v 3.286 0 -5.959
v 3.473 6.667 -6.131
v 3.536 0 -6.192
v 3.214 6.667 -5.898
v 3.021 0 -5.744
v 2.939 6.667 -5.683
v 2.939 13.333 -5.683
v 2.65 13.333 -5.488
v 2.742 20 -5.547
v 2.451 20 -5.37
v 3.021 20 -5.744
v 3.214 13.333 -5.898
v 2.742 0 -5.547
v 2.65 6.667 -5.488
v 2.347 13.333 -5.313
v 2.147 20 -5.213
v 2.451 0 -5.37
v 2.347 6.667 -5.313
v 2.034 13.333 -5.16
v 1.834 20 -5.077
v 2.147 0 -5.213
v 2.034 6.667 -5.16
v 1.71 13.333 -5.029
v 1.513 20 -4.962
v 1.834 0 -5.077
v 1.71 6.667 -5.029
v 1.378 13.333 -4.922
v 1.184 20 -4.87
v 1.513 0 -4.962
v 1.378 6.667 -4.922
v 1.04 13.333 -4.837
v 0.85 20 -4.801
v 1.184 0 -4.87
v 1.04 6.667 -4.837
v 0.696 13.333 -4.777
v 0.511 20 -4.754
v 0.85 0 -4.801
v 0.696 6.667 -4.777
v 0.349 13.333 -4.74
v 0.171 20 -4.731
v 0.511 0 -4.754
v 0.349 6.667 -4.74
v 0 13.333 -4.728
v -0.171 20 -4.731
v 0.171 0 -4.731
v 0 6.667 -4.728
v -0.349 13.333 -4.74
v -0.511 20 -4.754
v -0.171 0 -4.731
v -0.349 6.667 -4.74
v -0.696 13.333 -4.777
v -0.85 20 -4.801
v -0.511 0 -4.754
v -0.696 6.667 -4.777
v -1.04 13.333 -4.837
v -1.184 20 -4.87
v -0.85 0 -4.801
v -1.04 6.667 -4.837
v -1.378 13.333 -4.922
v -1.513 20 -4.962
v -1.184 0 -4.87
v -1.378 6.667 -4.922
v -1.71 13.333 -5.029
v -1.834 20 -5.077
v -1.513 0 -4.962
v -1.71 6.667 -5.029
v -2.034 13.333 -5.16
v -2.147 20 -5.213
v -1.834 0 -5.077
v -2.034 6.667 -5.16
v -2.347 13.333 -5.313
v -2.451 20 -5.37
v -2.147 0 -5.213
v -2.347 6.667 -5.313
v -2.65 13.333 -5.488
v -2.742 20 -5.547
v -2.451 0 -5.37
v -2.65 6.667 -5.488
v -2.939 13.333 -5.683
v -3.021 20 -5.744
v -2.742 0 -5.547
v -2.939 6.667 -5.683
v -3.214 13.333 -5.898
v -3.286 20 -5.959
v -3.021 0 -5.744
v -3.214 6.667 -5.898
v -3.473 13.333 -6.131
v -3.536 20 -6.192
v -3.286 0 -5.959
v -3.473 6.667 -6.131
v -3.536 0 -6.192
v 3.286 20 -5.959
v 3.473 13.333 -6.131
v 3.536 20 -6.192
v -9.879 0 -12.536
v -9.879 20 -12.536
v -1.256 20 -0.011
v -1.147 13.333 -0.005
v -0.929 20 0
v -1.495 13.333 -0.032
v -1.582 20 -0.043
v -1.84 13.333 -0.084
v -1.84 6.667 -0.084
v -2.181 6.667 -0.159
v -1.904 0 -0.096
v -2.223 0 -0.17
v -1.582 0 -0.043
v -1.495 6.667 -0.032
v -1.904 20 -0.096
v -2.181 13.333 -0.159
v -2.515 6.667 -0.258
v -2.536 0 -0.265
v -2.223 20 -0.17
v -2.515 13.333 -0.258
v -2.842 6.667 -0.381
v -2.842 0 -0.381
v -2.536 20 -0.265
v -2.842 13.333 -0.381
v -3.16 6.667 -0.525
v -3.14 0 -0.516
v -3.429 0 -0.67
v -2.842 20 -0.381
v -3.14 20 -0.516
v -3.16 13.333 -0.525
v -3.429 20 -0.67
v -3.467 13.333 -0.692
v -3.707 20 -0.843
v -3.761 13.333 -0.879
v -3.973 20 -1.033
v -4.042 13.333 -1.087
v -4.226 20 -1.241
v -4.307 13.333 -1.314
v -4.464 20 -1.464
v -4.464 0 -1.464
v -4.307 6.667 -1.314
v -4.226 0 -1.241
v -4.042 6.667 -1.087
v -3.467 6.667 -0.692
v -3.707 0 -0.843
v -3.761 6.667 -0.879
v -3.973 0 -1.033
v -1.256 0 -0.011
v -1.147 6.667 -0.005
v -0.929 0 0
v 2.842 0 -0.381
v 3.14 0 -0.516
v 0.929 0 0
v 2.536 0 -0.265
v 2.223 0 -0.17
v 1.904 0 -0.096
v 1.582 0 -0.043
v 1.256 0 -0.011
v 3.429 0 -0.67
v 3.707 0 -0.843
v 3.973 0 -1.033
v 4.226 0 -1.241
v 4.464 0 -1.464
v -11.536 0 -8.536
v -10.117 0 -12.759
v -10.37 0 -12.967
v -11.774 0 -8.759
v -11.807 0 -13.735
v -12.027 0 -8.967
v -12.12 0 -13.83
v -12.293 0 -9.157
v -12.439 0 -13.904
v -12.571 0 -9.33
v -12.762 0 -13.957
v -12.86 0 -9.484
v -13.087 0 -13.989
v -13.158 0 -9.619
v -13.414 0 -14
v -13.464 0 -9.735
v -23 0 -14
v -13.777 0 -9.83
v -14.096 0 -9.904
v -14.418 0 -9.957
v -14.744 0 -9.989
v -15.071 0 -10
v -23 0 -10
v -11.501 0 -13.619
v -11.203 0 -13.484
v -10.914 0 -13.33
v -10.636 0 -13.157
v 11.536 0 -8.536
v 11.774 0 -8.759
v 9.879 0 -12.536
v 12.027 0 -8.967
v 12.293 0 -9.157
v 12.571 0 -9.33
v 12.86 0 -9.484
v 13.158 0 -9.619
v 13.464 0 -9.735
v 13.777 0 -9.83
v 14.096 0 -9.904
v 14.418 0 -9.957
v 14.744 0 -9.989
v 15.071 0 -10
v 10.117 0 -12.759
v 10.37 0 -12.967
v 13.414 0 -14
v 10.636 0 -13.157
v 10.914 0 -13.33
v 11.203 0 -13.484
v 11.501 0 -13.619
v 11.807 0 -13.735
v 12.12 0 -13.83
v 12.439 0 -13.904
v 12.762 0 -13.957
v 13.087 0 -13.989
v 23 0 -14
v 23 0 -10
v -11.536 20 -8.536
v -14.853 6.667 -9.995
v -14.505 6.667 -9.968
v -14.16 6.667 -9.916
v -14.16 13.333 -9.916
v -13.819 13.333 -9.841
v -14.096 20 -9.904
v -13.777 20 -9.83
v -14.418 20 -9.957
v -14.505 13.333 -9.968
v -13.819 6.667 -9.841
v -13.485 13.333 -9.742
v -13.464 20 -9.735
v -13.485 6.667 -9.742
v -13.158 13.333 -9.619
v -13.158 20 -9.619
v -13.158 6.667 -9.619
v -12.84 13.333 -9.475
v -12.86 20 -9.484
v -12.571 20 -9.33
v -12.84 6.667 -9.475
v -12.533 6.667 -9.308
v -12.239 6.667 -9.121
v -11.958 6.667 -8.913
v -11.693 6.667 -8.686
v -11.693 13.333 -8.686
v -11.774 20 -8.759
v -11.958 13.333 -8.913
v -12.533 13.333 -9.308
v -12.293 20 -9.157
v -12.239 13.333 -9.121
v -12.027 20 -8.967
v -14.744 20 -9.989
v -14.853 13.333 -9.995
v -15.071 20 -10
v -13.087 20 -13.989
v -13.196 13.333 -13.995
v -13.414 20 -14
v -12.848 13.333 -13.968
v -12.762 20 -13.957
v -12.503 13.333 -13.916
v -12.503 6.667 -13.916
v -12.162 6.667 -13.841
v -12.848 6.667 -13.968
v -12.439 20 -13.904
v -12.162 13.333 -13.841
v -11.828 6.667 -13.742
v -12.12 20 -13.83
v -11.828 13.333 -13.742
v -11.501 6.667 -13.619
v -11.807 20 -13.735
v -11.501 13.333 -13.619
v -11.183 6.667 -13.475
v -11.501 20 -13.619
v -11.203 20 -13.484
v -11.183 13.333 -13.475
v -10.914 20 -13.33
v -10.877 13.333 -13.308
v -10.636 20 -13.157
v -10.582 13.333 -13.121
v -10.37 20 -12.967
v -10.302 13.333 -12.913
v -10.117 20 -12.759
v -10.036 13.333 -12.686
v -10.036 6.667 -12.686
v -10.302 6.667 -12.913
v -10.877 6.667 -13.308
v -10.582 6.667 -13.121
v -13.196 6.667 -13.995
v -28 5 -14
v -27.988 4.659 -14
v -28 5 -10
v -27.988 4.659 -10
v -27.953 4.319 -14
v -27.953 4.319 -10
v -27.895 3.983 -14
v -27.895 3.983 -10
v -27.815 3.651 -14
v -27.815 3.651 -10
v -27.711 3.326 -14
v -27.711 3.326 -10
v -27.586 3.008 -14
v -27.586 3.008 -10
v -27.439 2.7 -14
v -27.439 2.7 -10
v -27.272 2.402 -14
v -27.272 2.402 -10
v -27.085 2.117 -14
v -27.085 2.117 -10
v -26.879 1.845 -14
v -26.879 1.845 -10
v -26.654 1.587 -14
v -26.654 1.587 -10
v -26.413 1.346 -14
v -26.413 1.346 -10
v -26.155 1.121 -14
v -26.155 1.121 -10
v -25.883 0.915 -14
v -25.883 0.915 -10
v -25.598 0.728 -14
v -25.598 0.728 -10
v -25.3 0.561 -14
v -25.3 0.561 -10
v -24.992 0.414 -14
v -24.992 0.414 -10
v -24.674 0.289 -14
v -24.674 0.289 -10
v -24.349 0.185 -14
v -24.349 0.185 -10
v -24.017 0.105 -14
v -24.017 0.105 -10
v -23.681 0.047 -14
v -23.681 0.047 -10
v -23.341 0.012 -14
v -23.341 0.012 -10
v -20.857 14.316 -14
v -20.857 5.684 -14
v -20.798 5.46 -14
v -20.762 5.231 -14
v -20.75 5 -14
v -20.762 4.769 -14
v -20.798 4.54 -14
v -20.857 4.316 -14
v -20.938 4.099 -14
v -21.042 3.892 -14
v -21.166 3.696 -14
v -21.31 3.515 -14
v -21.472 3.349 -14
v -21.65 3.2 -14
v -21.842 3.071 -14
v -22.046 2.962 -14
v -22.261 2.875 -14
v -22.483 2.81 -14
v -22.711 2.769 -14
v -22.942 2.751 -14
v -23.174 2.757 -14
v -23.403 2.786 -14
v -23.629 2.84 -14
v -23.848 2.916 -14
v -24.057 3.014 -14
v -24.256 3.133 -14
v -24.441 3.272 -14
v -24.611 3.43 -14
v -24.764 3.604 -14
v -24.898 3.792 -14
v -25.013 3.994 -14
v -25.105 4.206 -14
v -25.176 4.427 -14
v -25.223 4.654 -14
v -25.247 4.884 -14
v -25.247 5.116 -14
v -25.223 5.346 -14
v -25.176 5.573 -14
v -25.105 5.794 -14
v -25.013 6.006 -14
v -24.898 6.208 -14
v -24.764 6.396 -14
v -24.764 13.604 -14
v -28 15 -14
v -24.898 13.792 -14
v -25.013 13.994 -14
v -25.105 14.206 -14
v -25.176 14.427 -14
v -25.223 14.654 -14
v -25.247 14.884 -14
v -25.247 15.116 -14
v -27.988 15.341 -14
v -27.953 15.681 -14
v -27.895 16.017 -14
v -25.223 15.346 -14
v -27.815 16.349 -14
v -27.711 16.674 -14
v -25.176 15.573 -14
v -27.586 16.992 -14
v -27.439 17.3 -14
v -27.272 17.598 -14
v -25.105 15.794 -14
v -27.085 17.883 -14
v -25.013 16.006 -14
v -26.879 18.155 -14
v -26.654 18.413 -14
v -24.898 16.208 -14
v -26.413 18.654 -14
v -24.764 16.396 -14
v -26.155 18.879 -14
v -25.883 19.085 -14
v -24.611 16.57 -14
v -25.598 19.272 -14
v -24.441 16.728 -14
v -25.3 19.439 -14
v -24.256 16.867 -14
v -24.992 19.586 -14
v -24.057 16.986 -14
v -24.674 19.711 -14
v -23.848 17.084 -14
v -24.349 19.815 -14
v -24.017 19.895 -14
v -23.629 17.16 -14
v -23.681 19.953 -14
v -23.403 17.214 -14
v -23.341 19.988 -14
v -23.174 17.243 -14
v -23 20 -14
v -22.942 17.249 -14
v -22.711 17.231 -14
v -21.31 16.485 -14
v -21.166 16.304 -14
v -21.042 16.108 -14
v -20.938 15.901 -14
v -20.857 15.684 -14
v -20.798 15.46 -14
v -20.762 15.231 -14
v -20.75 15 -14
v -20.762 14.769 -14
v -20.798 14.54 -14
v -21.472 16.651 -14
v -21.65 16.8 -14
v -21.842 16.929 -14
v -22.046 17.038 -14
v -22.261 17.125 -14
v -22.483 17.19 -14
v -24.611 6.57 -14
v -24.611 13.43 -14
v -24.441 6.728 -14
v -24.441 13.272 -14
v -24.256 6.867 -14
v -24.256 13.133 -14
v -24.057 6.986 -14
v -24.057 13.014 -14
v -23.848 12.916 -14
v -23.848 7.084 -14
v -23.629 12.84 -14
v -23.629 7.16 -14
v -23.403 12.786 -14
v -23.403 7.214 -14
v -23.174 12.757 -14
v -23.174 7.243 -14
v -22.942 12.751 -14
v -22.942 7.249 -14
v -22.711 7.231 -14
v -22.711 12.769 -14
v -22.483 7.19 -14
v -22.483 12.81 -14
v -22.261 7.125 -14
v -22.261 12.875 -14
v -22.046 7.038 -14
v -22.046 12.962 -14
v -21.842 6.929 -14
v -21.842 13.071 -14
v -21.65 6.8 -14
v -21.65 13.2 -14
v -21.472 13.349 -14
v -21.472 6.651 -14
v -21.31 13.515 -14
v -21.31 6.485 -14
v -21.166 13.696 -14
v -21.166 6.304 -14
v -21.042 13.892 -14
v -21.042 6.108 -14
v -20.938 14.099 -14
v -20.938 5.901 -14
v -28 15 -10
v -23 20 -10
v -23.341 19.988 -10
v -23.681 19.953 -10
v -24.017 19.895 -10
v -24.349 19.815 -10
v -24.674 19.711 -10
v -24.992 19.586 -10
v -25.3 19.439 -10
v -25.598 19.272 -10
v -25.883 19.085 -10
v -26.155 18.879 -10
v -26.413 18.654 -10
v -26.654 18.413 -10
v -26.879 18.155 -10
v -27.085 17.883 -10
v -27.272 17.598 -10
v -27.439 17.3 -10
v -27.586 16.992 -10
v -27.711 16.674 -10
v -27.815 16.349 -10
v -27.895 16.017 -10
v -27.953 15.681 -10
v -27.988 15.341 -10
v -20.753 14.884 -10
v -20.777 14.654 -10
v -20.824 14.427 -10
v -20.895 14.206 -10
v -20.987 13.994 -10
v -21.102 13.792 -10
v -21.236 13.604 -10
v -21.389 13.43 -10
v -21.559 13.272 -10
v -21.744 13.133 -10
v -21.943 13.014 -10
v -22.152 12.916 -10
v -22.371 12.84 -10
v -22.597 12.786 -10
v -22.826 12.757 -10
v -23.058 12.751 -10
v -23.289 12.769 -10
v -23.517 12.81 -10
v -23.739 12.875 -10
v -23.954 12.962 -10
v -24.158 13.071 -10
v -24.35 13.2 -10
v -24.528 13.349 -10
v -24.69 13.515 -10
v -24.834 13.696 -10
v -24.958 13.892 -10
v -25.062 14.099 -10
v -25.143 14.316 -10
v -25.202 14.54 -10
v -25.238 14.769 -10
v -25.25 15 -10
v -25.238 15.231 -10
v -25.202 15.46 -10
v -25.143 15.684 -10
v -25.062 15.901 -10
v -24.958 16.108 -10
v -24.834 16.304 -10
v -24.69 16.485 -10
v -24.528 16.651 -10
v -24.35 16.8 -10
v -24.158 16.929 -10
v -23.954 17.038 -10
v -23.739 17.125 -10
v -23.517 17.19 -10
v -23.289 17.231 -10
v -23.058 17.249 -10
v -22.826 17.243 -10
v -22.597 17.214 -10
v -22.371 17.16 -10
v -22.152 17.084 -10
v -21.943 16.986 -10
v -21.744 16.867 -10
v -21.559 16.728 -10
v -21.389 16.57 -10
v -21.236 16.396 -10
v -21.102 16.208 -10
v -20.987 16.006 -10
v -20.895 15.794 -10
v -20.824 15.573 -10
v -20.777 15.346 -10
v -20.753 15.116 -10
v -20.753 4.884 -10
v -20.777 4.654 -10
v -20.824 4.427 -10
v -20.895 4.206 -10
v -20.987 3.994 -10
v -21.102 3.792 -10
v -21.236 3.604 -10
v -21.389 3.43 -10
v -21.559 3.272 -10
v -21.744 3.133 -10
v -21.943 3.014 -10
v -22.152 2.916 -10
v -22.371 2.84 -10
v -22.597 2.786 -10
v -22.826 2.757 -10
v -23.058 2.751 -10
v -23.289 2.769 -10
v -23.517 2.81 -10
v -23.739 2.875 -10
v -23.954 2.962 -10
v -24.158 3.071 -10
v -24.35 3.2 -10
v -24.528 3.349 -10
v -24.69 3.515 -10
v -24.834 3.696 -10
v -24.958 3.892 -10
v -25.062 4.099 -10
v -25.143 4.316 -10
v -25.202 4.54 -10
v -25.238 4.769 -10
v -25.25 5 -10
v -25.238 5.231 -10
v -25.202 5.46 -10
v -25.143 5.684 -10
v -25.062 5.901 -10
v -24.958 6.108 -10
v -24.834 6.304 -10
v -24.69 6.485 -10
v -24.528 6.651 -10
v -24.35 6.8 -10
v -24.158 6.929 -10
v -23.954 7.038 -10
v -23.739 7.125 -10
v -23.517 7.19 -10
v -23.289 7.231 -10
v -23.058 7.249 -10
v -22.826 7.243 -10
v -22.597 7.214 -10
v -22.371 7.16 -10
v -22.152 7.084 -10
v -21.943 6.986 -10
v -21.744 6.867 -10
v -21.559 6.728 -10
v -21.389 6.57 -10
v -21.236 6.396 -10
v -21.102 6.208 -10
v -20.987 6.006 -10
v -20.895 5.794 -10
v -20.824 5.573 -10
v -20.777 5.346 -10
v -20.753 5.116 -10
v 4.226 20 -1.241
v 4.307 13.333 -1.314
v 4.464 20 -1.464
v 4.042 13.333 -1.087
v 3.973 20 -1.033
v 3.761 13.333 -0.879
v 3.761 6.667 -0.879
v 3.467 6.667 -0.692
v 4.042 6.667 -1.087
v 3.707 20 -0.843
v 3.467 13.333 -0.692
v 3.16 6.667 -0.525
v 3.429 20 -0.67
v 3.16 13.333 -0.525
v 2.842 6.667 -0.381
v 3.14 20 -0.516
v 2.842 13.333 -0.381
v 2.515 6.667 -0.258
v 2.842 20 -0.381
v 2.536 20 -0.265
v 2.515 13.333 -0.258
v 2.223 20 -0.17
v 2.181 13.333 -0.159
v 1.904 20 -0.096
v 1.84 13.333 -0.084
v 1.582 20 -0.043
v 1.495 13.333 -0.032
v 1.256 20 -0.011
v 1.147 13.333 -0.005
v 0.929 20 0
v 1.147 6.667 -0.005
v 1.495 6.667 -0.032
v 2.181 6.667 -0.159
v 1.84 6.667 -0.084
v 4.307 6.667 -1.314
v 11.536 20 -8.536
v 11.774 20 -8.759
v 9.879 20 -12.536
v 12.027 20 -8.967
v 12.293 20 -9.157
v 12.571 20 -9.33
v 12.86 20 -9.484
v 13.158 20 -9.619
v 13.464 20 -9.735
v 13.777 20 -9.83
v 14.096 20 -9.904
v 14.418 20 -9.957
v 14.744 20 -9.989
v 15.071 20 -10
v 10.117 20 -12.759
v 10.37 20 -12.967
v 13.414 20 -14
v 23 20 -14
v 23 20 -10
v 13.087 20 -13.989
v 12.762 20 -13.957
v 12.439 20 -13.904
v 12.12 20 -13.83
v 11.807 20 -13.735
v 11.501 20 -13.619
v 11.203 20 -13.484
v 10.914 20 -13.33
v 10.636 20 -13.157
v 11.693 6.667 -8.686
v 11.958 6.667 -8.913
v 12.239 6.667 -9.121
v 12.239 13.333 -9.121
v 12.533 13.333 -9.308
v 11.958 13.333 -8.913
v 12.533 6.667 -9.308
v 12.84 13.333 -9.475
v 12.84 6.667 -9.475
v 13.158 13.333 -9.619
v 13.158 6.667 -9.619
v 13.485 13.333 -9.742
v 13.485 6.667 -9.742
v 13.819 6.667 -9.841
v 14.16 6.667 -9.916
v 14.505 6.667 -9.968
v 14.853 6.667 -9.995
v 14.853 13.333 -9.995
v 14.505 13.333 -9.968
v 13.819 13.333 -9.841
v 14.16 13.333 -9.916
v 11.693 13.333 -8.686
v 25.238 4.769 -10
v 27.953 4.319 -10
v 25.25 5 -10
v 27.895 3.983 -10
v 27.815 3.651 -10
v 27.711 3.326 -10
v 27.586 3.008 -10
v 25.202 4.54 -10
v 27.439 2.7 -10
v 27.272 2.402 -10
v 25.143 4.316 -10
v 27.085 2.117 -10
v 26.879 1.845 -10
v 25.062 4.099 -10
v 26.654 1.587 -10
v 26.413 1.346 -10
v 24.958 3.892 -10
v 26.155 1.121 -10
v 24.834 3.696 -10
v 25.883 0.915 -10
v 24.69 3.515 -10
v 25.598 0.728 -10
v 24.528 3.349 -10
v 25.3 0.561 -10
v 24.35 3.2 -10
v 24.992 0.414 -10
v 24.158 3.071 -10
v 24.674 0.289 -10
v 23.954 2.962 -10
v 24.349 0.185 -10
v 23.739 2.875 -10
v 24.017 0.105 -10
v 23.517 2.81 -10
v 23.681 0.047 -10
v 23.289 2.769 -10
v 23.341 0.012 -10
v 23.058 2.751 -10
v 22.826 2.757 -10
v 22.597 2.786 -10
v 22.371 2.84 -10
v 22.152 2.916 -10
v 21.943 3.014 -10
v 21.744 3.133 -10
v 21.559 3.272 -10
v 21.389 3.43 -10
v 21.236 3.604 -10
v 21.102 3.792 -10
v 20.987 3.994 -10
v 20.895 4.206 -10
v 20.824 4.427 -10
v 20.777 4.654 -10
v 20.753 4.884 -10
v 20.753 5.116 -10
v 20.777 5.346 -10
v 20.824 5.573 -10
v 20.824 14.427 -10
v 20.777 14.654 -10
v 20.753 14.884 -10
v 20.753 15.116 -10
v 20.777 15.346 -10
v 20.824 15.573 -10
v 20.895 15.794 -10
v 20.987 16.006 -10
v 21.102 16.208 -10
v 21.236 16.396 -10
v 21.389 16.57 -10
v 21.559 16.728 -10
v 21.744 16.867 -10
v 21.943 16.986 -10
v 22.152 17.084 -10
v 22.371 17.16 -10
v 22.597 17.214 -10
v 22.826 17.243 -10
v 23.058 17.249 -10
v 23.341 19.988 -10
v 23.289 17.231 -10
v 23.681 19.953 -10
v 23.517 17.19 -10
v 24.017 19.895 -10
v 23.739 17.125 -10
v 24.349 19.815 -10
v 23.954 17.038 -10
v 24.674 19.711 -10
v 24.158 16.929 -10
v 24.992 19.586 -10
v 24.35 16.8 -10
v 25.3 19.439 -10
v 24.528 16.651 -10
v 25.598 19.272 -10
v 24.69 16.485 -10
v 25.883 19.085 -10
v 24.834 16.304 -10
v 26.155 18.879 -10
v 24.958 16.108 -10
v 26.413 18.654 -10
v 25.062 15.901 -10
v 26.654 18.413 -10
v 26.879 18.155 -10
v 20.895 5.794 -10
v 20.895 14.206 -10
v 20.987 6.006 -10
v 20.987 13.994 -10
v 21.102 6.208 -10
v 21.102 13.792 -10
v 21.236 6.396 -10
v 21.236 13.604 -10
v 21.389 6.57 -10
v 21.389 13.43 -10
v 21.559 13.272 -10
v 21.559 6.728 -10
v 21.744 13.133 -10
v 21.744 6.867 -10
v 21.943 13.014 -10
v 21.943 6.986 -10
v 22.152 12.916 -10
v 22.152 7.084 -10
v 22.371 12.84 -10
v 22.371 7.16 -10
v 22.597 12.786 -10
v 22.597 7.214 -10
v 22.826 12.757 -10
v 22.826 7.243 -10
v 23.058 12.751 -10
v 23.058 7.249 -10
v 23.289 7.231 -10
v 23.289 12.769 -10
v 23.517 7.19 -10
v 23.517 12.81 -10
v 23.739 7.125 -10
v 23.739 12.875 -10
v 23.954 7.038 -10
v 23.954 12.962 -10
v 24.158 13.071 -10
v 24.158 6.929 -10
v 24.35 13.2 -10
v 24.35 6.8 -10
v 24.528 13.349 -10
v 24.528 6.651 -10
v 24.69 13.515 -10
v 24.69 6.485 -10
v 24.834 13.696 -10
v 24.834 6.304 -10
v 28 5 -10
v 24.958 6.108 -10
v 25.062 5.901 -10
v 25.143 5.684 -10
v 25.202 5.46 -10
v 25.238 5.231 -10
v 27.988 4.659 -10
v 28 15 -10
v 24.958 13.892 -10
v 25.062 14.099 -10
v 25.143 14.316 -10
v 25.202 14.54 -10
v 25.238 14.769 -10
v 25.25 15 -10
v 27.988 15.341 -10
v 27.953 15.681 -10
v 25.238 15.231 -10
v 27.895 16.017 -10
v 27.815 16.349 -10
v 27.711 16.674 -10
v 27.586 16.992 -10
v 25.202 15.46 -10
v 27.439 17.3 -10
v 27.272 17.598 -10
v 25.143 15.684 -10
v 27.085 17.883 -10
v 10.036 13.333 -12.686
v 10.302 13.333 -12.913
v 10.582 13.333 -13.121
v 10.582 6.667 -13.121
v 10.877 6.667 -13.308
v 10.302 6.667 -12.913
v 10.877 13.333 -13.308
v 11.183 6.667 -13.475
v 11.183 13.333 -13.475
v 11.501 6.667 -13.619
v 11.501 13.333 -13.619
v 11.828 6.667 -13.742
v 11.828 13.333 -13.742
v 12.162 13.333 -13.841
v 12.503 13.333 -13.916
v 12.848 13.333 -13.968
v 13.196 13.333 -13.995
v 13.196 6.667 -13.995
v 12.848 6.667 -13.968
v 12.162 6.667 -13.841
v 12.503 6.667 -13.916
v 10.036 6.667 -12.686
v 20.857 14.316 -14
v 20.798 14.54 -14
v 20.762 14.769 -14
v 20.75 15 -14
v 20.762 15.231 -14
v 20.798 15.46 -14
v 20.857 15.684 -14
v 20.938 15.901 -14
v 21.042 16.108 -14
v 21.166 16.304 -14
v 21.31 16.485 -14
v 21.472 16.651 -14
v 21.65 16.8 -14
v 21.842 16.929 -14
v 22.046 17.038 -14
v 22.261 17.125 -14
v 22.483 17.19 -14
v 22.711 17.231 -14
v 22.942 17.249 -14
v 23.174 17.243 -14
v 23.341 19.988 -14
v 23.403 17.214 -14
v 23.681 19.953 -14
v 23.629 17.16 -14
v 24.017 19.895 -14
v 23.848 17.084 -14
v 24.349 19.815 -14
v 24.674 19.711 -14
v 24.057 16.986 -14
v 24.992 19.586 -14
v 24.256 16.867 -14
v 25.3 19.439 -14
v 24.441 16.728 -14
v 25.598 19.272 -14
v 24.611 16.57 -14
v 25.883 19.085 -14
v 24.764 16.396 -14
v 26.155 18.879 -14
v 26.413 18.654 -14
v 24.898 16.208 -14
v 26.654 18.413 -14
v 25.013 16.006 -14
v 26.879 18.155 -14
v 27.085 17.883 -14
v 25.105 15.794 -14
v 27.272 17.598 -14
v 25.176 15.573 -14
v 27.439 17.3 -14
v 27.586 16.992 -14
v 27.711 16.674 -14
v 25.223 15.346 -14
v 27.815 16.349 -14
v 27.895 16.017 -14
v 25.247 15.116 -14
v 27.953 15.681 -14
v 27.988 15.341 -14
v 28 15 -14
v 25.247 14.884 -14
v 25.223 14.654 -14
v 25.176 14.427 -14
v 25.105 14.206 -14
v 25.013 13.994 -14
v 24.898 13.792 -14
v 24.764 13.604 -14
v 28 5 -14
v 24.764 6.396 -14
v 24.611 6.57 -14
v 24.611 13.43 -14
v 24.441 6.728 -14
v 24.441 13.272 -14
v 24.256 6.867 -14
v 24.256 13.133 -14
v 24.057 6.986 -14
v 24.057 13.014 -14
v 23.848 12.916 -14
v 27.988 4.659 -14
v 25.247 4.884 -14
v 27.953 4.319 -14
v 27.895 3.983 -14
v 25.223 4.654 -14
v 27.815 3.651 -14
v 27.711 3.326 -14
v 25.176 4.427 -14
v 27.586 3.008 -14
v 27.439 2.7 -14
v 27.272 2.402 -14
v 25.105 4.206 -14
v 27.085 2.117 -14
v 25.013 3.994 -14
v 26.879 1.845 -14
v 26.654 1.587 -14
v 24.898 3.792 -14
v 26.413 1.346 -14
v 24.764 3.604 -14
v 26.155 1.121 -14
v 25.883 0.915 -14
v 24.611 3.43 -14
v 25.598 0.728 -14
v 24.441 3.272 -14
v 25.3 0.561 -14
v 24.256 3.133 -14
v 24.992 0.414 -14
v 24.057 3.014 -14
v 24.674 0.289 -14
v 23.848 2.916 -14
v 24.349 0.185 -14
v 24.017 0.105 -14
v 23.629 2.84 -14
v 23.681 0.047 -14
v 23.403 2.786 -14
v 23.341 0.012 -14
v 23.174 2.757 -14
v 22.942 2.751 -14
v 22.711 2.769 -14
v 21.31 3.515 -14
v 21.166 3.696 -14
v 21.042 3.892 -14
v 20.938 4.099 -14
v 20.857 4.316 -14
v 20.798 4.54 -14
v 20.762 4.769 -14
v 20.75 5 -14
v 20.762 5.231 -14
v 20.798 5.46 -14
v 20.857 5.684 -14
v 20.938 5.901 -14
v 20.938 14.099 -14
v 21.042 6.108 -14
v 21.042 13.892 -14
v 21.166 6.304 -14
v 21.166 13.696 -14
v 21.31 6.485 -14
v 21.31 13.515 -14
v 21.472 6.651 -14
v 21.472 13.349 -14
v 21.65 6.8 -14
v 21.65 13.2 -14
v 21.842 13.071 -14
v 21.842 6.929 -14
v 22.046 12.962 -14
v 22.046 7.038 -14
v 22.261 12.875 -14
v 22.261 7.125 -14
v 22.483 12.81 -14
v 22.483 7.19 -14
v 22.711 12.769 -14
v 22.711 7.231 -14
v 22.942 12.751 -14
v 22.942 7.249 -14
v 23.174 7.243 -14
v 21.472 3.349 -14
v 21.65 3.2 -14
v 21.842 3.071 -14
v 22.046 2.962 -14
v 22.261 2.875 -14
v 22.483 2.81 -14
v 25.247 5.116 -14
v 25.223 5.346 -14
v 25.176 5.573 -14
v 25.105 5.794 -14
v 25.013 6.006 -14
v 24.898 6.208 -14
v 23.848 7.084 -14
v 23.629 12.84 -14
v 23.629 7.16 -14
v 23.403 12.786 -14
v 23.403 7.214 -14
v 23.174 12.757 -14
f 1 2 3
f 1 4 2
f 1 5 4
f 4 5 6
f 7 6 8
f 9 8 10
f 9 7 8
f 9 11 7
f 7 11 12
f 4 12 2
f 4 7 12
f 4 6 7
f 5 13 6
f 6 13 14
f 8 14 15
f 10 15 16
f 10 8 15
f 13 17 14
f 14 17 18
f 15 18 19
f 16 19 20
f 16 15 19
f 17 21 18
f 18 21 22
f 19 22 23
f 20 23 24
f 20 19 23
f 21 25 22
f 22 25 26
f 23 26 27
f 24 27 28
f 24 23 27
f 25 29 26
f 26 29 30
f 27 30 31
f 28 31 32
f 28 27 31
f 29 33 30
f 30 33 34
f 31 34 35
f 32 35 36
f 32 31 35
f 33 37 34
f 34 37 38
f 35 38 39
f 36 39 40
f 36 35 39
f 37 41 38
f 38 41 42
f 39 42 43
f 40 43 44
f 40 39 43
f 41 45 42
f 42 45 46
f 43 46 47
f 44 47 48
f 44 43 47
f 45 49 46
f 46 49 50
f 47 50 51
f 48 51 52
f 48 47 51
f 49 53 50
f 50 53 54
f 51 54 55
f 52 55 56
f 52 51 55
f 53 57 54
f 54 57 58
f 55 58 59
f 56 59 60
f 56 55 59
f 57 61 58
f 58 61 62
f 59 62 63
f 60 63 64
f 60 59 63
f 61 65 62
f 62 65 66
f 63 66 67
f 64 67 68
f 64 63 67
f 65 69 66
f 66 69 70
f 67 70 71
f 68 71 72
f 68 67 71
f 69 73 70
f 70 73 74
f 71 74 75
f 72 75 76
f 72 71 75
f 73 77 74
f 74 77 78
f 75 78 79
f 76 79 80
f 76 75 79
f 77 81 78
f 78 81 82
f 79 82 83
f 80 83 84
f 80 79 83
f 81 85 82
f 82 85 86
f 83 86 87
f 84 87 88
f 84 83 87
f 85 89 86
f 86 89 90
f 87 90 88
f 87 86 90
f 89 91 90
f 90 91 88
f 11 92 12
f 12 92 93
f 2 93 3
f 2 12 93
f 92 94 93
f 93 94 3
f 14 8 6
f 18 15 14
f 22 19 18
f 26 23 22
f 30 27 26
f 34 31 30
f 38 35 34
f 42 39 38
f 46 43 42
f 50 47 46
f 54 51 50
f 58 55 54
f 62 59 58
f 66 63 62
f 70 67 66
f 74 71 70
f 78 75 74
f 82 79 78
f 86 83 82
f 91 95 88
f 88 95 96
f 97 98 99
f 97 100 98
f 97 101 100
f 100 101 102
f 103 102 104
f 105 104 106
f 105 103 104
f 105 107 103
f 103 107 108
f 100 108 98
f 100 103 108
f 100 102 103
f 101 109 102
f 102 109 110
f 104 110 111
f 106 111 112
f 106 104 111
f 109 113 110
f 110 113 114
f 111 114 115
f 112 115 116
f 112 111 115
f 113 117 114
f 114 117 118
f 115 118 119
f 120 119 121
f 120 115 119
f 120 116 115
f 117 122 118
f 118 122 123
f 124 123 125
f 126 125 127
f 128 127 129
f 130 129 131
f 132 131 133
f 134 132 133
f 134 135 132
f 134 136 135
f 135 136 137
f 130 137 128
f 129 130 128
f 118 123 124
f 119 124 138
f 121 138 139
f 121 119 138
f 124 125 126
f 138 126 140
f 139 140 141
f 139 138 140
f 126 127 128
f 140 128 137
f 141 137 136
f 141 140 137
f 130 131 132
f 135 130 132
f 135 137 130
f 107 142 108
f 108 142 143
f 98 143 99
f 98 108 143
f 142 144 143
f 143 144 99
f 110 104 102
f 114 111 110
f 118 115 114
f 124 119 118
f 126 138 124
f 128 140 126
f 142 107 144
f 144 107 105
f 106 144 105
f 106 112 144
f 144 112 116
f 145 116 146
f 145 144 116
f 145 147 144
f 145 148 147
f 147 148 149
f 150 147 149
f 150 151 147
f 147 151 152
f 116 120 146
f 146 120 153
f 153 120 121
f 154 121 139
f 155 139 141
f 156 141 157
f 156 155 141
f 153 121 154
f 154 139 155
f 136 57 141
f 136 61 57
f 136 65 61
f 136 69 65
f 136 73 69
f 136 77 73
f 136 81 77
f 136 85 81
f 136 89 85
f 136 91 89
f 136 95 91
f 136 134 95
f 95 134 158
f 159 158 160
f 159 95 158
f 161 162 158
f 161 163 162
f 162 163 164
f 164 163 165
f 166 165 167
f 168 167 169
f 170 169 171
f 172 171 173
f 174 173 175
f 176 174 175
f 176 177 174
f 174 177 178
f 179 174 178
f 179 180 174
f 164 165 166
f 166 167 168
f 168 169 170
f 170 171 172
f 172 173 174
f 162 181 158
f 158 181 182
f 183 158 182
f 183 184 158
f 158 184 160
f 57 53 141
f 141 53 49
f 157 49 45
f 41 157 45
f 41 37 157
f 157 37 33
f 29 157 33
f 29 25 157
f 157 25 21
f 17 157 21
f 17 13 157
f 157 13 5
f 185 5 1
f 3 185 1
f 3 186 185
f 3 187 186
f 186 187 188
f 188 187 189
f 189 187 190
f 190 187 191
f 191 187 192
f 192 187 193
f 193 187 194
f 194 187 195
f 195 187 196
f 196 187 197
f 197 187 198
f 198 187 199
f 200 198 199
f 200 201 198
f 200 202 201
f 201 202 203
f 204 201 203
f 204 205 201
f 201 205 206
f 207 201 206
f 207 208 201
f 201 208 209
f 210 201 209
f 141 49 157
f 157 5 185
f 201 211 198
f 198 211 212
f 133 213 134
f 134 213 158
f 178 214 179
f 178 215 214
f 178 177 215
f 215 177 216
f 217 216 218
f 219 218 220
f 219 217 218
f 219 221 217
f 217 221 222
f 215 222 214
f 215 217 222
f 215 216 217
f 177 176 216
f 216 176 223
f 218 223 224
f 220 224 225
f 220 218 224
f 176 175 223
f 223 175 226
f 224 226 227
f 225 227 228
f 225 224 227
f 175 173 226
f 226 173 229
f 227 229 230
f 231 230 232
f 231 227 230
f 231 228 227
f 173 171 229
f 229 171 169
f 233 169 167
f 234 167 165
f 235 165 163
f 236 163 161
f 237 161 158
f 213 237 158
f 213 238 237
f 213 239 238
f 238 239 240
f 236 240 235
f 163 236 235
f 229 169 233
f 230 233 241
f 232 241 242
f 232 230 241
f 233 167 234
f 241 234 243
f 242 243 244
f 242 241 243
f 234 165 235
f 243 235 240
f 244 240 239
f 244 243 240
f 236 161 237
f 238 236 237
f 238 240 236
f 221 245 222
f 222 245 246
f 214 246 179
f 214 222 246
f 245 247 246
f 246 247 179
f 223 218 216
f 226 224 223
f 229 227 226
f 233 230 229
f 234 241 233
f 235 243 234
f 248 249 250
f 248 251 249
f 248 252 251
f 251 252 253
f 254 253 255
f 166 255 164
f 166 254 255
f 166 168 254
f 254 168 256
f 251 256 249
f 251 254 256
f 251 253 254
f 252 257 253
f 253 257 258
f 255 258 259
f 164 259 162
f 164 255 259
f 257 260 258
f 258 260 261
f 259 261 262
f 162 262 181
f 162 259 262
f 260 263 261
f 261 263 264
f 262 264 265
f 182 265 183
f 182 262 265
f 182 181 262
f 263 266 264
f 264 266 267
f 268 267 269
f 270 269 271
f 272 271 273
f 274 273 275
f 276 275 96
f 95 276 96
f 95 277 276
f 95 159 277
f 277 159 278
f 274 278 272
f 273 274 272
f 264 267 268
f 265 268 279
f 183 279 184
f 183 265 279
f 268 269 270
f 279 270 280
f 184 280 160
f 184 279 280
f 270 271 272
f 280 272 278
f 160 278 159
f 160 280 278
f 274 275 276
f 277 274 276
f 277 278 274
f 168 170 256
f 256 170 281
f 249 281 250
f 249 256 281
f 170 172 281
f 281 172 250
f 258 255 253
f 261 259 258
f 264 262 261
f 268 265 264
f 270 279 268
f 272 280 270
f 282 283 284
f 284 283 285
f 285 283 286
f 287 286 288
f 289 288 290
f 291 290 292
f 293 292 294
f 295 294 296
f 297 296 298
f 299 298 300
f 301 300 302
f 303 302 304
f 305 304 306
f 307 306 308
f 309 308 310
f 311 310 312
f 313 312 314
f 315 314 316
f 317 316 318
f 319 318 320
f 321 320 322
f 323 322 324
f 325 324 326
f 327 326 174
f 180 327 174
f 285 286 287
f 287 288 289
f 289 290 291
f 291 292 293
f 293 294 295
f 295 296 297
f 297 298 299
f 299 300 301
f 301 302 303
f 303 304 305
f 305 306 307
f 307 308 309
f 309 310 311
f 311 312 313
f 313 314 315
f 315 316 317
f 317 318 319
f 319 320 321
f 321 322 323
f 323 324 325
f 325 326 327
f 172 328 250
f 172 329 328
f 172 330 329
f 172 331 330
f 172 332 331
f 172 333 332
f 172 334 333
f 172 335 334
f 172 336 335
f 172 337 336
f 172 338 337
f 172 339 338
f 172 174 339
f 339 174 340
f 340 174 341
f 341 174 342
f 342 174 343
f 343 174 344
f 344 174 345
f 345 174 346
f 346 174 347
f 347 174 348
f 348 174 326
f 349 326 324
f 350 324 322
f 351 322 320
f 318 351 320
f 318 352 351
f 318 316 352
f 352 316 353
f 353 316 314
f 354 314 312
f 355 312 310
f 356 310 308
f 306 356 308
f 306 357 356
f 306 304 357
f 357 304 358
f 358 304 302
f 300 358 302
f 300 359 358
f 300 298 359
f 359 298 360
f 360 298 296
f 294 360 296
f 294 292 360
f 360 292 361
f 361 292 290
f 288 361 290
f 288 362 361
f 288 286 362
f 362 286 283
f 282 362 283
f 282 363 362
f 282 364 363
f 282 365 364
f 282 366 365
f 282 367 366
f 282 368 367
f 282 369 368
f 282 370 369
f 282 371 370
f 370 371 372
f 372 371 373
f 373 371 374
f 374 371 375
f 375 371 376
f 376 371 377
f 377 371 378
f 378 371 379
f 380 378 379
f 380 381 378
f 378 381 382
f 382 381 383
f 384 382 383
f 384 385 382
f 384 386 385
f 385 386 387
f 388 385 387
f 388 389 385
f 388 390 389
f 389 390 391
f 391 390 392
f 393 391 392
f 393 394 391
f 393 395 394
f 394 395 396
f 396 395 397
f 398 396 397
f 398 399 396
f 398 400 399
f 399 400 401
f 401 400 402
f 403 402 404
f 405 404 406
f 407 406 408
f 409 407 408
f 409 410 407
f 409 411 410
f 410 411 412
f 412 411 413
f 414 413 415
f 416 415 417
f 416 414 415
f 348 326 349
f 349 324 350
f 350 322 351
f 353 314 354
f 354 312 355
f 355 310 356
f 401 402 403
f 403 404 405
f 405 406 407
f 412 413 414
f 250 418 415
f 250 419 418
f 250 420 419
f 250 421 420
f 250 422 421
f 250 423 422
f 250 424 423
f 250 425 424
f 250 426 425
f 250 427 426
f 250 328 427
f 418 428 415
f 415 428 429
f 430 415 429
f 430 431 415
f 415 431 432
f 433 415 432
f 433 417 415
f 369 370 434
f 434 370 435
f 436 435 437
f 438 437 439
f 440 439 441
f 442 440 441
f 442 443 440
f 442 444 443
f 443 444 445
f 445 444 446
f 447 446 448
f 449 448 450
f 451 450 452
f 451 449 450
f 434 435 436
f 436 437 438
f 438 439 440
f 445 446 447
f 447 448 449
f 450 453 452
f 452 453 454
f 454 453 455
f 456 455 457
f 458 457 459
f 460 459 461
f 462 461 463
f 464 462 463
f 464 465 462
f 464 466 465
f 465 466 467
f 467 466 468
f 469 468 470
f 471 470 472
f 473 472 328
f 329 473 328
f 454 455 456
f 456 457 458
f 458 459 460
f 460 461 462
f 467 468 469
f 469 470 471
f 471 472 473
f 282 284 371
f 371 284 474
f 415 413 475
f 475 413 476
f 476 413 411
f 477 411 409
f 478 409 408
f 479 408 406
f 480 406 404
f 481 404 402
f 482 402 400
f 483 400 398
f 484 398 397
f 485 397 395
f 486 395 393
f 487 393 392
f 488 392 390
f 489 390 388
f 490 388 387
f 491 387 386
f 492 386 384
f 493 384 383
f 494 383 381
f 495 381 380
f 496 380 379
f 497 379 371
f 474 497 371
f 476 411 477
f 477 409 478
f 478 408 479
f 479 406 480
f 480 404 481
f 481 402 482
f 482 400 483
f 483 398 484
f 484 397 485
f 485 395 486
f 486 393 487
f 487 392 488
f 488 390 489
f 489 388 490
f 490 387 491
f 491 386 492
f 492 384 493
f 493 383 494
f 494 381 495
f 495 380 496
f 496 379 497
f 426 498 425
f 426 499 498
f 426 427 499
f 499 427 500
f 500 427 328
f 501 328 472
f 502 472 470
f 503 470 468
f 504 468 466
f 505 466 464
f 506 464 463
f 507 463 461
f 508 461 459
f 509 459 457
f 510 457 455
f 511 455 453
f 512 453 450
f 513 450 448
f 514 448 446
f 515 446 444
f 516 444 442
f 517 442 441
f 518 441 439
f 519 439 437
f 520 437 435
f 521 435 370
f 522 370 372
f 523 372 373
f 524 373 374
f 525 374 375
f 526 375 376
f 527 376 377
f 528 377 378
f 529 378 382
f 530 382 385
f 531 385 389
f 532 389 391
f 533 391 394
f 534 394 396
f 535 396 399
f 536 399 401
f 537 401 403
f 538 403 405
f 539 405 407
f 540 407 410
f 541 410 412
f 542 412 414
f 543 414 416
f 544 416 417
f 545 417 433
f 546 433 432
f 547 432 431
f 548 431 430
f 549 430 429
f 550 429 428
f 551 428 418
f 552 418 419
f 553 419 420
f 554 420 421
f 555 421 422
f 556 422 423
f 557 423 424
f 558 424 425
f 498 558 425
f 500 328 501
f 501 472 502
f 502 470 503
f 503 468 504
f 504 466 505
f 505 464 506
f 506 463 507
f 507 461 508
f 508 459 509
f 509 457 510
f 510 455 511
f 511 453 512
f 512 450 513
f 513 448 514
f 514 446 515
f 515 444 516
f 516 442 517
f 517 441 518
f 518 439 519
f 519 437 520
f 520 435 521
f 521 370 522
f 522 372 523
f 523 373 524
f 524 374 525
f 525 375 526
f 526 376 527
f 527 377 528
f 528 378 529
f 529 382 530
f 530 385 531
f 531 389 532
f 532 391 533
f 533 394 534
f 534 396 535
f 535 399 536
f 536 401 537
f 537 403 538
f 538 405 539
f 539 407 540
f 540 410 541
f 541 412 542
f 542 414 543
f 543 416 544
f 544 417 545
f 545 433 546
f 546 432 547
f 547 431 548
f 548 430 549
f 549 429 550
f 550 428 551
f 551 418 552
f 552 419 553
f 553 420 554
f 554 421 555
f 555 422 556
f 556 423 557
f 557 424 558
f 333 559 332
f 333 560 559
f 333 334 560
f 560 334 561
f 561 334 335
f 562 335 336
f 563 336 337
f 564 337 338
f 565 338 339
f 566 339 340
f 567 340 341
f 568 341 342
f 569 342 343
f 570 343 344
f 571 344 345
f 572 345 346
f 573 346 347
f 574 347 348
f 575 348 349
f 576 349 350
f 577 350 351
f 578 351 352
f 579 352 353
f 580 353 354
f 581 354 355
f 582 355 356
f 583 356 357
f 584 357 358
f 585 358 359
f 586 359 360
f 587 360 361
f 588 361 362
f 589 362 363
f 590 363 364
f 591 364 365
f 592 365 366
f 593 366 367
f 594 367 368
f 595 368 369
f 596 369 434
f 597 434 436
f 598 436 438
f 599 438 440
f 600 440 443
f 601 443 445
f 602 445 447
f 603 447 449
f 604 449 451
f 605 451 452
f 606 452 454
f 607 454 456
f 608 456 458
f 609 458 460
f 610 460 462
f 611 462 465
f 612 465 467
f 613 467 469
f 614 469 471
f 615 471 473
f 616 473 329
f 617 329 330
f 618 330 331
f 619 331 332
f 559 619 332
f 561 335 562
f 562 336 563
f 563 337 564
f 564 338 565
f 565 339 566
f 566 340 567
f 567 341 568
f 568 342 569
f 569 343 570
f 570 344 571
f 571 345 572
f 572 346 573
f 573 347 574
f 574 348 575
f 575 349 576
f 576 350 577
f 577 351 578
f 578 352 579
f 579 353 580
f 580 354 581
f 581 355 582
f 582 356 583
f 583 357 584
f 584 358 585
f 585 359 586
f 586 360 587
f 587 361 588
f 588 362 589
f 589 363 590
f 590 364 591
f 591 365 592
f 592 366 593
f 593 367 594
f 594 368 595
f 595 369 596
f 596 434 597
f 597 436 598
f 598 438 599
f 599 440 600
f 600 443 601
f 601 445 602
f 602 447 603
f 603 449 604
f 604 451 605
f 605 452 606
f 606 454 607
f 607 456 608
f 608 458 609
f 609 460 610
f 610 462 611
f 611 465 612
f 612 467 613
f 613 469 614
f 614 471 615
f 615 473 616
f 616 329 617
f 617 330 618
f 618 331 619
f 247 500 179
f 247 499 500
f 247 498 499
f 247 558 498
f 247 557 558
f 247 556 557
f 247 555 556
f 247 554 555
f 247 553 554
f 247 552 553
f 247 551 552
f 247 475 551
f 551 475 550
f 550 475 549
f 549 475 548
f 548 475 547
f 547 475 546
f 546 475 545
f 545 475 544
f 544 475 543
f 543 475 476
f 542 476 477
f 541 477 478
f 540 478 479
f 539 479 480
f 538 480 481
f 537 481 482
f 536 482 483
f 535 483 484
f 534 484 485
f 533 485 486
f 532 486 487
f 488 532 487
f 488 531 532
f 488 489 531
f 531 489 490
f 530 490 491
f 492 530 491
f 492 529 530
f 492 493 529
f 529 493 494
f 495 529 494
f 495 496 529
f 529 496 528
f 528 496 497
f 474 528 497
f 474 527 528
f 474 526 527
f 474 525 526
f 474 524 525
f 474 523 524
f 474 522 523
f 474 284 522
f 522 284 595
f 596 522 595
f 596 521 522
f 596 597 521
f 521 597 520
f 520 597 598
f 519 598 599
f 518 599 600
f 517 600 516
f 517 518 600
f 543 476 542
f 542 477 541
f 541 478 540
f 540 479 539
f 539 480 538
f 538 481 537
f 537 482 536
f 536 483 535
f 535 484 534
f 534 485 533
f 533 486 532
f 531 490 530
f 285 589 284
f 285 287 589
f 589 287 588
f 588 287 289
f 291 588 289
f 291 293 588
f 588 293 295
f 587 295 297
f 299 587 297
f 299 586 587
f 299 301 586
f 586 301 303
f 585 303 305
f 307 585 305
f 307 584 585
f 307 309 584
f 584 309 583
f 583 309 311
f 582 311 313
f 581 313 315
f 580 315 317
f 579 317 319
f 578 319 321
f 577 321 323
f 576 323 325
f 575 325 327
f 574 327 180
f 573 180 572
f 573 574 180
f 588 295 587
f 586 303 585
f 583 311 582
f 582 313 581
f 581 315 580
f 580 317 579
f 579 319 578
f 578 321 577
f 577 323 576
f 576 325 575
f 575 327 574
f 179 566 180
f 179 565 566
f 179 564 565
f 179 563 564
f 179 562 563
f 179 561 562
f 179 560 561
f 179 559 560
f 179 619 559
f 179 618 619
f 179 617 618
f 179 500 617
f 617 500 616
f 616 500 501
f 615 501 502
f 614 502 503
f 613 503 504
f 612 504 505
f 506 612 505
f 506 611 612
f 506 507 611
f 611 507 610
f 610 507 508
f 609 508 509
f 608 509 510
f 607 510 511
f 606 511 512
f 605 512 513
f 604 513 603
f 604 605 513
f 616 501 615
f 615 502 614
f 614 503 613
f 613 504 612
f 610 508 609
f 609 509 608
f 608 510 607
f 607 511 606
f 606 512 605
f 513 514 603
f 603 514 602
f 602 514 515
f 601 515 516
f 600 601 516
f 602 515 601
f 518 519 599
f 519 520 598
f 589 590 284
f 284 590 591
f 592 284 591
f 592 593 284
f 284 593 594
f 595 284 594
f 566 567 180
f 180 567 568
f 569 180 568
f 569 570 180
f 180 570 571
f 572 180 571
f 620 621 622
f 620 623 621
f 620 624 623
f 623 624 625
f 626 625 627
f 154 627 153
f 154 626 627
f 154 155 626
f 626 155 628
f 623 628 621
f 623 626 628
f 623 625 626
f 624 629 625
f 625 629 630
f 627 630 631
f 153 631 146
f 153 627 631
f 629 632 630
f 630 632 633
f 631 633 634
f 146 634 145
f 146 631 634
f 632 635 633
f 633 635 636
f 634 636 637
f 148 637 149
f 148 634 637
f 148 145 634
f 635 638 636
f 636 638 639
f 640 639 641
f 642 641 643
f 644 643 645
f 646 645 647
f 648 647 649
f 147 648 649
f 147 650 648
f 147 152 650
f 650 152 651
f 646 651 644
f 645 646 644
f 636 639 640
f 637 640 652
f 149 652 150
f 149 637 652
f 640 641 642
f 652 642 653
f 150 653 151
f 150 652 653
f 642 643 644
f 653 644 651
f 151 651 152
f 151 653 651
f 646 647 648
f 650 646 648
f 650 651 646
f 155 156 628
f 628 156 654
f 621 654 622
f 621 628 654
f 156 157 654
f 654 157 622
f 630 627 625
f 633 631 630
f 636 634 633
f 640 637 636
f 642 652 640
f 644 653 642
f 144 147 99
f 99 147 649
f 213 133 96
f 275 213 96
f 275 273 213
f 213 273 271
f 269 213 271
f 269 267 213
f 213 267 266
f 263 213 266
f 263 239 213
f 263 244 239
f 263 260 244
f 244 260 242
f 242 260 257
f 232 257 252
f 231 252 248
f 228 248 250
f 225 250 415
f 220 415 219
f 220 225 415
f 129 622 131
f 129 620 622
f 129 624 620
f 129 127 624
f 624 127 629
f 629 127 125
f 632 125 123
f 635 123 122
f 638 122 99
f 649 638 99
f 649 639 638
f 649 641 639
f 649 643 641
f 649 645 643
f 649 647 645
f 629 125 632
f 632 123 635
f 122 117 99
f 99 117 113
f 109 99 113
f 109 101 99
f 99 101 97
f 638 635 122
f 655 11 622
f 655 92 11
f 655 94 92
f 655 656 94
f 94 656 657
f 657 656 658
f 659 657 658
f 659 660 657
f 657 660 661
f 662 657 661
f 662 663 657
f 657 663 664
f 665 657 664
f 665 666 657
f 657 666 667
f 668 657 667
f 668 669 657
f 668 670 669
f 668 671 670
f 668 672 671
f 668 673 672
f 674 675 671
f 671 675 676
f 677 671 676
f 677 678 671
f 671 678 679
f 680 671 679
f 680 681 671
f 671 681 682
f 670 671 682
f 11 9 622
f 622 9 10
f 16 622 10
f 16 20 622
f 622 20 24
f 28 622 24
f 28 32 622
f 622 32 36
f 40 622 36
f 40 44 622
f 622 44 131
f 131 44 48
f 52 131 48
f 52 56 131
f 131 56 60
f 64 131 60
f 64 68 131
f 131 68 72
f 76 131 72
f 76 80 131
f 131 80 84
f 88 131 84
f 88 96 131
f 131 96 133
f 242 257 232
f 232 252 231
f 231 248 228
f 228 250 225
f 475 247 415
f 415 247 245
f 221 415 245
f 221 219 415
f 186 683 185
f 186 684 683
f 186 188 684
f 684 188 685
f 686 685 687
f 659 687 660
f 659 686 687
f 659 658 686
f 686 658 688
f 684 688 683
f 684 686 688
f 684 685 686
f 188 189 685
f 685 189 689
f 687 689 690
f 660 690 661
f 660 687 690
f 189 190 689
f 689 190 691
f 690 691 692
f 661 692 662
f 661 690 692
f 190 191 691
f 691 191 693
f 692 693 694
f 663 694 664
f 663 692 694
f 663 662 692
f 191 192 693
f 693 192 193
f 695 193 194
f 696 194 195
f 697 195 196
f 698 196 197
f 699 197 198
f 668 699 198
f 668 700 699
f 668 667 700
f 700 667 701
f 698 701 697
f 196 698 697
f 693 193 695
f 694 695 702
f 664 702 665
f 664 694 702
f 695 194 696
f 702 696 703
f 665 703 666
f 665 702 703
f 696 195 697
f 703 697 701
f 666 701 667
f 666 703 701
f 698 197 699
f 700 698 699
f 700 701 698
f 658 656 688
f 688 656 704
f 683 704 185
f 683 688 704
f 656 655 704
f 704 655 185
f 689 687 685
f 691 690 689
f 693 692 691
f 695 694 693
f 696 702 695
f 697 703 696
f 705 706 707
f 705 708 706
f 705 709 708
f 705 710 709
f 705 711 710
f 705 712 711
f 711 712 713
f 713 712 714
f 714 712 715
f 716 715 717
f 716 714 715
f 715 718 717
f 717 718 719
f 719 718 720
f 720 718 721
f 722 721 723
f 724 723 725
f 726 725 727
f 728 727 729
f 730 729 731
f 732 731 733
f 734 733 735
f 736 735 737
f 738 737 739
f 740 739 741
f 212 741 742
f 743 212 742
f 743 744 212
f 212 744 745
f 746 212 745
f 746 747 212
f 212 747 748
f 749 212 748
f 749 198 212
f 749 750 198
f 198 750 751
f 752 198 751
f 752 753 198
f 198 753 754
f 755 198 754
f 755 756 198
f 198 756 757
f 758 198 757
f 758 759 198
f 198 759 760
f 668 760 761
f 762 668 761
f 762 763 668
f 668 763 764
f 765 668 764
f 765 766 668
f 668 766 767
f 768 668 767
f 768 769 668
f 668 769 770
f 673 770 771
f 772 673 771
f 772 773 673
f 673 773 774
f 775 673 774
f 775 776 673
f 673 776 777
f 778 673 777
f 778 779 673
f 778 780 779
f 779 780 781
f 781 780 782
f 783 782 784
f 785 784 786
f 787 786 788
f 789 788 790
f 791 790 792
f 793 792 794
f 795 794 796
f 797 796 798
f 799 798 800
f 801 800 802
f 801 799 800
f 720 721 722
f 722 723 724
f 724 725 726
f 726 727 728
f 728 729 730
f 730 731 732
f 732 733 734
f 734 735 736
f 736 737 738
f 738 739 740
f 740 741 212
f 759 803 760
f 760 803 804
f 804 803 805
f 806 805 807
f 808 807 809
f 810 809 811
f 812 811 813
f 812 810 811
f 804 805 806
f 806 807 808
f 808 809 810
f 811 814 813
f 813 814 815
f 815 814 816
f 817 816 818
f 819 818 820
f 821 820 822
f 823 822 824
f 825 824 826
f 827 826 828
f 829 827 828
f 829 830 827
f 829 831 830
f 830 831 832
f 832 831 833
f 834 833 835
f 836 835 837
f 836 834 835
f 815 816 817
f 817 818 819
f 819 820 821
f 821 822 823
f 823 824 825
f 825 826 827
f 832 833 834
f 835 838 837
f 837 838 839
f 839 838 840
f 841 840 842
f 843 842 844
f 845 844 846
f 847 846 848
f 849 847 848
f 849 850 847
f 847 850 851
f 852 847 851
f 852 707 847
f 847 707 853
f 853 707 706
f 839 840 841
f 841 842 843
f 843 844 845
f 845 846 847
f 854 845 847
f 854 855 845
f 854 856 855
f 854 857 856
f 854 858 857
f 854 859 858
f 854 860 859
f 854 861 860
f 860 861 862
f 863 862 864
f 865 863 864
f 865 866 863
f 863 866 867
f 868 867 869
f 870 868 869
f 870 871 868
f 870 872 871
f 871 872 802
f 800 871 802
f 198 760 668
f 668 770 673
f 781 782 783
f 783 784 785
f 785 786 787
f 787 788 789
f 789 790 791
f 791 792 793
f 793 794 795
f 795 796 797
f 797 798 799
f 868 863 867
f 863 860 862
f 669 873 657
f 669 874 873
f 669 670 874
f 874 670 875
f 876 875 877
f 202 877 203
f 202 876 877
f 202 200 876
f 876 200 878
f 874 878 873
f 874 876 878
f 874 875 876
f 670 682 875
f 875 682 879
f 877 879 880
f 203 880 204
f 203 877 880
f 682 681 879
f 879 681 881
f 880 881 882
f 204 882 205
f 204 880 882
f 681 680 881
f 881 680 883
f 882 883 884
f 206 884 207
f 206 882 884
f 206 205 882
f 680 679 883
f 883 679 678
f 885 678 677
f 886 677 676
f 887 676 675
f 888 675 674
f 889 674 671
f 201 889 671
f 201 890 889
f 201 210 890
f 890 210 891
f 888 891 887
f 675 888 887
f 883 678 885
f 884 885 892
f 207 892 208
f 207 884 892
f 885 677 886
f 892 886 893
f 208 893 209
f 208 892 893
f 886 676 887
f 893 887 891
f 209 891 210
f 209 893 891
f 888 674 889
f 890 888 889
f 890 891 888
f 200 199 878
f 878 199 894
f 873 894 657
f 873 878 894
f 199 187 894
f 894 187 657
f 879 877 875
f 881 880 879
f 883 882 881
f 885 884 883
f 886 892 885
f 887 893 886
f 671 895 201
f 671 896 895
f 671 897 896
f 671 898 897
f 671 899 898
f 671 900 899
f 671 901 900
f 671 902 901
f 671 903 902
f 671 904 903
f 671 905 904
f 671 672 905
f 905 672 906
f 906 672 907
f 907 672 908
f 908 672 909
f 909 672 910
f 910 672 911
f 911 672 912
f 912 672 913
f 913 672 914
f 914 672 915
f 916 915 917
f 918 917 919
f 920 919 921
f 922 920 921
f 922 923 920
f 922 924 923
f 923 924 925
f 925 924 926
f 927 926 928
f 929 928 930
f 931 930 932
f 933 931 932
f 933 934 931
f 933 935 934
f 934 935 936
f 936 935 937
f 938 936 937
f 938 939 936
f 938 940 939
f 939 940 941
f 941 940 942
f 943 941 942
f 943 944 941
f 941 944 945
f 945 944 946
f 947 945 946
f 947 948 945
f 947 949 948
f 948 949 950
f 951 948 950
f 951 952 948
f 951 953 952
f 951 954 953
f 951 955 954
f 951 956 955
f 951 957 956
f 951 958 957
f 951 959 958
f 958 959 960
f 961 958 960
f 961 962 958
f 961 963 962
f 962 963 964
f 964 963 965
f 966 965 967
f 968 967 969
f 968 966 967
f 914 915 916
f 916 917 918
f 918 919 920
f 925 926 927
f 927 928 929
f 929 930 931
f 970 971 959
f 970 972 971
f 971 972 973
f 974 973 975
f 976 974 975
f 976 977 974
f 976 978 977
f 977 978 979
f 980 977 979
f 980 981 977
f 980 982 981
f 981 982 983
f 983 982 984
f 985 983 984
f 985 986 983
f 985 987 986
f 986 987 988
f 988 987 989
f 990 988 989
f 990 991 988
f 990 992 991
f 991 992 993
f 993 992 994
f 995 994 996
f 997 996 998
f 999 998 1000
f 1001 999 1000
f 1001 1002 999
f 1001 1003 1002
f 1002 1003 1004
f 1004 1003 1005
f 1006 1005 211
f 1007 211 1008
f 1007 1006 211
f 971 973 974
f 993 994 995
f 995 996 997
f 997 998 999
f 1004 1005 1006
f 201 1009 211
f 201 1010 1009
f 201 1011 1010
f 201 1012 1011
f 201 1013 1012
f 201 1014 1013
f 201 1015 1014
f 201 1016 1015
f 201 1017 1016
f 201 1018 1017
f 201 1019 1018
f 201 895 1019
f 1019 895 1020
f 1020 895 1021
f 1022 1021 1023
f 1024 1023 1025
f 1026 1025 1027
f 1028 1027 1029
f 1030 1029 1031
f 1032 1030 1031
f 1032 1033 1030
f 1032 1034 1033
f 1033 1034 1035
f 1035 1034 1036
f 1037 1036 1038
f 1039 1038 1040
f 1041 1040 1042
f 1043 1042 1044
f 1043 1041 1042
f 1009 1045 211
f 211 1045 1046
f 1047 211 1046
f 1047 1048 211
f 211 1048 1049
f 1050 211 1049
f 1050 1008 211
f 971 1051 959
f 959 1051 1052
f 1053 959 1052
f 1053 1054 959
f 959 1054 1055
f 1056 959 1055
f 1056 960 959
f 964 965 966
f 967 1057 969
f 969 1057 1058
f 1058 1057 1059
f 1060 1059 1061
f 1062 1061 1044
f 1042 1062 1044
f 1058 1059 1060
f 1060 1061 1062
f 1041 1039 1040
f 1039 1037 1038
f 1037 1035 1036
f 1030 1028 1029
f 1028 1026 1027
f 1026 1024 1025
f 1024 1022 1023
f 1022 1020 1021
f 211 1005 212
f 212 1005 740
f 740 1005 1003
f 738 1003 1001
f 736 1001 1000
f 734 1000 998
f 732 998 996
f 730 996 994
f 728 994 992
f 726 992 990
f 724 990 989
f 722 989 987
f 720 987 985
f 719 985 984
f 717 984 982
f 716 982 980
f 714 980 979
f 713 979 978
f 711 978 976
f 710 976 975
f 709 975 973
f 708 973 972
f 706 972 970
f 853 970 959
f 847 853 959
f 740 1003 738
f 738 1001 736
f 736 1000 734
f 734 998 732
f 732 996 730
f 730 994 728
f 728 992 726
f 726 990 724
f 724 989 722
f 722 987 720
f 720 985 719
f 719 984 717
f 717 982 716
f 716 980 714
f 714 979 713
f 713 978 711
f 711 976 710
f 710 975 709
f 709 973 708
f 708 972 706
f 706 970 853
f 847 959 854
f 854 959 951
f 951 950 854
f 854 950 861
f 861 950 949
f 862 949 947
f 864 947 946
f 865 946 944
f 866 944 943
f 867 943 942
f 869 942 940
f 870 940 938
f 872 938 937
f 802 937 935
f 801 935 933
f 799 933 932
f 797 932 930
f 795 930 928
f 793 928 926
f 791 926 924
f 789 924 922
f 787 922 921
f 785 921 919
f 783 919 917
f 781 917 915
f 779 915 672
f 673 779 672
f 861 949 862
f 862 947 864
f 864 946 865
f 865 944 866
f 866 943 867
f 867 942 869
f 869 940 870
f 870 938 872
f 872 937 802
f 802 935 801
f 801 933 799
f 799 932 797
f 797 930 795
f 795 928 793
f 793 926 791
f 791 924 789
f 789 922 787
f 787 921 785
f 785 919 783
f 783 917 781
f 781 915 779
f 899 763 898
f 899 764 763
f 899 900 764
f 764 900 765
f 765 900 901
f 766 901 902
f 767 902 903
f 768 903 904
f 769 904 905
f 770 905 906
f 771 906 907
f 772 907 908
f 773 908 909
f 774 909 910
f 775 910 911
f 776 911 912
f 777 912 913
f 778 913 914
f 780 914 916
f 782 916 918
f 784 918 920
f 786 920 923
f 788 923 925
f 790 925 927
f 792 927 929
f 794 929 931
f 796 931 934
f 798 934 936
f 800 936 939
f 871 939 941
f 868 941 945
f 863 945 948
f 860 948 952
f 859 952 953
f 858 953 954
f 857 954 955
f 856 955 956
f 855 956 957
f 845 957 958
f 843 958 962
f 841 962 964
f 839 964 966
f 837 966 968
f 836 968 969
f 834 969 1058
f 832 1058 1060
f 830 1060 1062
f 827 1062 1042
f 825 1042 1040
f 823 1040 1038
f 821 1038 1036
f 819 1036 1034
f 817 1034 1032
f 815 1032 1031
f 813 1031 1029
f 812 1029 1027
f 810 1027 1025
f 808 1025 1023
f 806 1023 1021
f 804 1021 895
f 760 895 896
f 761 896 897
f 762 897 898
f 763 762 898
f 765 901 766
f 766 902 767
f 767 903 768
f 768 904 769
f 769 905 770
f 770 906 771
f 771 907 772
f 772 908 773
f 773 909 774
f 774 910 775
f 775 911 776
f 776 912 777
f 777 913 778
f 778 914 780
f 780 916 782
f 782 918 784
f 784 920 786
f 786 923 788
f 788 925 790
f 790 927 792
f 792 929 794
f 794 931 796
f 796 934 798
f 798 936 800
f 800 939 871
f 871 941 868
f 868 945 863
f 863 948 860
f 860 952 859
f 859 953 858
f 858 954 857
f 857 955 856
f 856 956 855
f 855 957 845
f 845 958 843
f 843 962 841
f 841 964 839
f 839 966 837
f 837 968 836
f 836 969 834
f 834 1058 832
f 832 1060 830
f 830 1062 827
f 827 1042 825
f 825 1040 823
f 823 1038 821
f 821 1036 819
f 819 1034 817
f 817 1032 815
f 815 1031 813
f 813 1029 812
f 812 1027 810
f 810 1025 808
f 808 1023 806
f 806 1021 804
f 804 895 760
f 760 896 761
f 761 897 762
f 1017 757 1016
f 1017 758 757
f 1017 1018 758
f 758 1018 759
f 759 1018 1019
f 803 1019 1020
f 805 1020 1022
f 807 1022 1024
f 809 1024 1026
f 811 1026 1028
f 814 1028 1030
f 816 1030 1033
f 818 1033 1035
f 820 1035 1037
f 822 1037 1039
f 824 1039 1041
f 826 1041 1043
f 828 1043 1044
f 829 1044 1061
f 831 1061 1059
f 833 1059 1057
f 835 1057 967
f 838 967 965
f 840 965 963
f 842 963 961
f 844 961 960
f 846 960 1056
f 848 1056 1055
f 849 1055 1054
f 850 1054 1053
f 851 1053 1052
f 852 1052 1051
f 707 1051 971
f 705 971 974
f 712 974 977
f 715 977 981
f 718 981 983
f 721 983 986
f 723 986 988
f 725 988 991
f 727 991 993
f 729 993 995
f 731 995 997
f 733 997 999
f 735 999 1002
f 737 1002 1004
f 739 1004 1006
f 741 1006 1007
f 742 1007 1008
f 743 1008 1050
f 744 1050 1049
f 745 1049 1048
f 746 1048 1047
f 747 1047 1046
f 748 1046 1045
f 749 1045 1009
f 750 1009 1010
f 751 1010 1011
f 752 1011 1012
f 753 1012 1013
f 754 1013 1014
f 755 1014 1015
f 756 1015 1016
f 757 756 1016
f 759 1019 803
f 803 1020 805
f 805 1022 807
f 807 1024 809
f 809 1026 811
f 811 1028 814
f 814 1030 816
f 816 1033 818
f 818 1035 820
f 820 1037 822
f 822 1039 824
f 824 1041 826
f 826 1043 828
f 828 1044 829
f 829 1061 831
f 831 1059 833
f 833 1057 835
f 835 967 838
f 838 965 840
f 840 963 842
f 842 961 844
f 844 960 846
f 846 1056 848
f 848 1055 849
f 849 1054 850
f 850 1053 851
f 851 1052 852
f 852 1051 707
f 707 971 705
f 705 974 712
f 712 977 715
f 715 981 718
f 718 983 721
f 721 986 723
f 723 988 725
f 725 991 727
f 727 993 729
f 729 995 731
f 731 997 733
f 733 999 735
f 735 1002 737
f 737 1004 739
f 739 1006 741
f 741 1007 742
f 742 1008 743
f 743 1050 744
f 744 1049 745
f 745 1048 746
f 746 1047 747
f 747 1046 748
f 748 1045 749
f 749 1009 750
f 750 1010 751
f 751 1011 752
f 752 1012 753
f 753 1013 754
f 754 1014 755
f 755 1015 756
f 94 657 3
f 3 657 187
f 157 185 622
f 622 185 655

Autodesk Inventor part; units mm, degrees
ref_plane "YZ Plane" through (0, 0, 0) normal (1, 0, 0) x (0, 1, 0)
ref_plane "XZ Plane" through (0, 0, 0) normal (0, 1, 0) x (-1, 0, 0)
ref_plane "XY Plane" through (0, 0, 0) normal (0, 0, 1) x (1, 0, 0)
sketch "Sketch1" plane through (0, 0, 0) normal (0, 1, 0) x (-1, 0, 0)
  line L0 (-3, 0) -> (-13, -10)
  line L1 (-13, -10) -> (-28, -10)
  line L2 (-28, -14) -> (-11.3431, -14)
  line L3 (-11.3431, -14) -> (0, -2.6569)
  line L4 (-28, -10) -> (-28, -14)
  line L5 (-3, 0) -> (0, 0)
  line L6 (0, 0) -> (0, -2.6569)
  dimension "d7" = 15
  dimension "d9" = 4
  dimension "d38" = 10
  dimension "d39" = 4
extrude "Extrusion1" add sketch "Sketch1" along normal blind 20
sketch "Sketch4" plane through (13, 0, -10) normal (0, 0, 1) x (1, 0, 0)
  line L0 (0, 20) -> (15, 20) projected
  line L1 (15, 0) -> (15, 20) projected
  point P0 (-13, 0)
  point P1 (10, 15)
  point P2 (10, 5)
  dimension "d28" = 5
  dimension "d29" = 10
  dimension "d40" = 5
hole "Hole3" at (23, 15, -10) at (23, 5, -10) direction (0, 0, -1) diameter 4.5 end through all clearance for "Flat Head Machine Screw" size "M4" standard "Ansi Metric M Profile"
fillet "Fillet4" radius 5 5 edges at (28, 20, -12) (28, 0, -12) (11.3431, 10, -14) (13, 10, -10) (3, 10, 0)
mirror "Mirror3" about plane through (0, 0, -2.6569) normal (-1, 0, 0) of "Extrusion1", "Fillet4", "Hole3"
fillet "Fillet5" radius 5 1 edges at (0, 10, -2.6569)
properties part number "clip_cover"
